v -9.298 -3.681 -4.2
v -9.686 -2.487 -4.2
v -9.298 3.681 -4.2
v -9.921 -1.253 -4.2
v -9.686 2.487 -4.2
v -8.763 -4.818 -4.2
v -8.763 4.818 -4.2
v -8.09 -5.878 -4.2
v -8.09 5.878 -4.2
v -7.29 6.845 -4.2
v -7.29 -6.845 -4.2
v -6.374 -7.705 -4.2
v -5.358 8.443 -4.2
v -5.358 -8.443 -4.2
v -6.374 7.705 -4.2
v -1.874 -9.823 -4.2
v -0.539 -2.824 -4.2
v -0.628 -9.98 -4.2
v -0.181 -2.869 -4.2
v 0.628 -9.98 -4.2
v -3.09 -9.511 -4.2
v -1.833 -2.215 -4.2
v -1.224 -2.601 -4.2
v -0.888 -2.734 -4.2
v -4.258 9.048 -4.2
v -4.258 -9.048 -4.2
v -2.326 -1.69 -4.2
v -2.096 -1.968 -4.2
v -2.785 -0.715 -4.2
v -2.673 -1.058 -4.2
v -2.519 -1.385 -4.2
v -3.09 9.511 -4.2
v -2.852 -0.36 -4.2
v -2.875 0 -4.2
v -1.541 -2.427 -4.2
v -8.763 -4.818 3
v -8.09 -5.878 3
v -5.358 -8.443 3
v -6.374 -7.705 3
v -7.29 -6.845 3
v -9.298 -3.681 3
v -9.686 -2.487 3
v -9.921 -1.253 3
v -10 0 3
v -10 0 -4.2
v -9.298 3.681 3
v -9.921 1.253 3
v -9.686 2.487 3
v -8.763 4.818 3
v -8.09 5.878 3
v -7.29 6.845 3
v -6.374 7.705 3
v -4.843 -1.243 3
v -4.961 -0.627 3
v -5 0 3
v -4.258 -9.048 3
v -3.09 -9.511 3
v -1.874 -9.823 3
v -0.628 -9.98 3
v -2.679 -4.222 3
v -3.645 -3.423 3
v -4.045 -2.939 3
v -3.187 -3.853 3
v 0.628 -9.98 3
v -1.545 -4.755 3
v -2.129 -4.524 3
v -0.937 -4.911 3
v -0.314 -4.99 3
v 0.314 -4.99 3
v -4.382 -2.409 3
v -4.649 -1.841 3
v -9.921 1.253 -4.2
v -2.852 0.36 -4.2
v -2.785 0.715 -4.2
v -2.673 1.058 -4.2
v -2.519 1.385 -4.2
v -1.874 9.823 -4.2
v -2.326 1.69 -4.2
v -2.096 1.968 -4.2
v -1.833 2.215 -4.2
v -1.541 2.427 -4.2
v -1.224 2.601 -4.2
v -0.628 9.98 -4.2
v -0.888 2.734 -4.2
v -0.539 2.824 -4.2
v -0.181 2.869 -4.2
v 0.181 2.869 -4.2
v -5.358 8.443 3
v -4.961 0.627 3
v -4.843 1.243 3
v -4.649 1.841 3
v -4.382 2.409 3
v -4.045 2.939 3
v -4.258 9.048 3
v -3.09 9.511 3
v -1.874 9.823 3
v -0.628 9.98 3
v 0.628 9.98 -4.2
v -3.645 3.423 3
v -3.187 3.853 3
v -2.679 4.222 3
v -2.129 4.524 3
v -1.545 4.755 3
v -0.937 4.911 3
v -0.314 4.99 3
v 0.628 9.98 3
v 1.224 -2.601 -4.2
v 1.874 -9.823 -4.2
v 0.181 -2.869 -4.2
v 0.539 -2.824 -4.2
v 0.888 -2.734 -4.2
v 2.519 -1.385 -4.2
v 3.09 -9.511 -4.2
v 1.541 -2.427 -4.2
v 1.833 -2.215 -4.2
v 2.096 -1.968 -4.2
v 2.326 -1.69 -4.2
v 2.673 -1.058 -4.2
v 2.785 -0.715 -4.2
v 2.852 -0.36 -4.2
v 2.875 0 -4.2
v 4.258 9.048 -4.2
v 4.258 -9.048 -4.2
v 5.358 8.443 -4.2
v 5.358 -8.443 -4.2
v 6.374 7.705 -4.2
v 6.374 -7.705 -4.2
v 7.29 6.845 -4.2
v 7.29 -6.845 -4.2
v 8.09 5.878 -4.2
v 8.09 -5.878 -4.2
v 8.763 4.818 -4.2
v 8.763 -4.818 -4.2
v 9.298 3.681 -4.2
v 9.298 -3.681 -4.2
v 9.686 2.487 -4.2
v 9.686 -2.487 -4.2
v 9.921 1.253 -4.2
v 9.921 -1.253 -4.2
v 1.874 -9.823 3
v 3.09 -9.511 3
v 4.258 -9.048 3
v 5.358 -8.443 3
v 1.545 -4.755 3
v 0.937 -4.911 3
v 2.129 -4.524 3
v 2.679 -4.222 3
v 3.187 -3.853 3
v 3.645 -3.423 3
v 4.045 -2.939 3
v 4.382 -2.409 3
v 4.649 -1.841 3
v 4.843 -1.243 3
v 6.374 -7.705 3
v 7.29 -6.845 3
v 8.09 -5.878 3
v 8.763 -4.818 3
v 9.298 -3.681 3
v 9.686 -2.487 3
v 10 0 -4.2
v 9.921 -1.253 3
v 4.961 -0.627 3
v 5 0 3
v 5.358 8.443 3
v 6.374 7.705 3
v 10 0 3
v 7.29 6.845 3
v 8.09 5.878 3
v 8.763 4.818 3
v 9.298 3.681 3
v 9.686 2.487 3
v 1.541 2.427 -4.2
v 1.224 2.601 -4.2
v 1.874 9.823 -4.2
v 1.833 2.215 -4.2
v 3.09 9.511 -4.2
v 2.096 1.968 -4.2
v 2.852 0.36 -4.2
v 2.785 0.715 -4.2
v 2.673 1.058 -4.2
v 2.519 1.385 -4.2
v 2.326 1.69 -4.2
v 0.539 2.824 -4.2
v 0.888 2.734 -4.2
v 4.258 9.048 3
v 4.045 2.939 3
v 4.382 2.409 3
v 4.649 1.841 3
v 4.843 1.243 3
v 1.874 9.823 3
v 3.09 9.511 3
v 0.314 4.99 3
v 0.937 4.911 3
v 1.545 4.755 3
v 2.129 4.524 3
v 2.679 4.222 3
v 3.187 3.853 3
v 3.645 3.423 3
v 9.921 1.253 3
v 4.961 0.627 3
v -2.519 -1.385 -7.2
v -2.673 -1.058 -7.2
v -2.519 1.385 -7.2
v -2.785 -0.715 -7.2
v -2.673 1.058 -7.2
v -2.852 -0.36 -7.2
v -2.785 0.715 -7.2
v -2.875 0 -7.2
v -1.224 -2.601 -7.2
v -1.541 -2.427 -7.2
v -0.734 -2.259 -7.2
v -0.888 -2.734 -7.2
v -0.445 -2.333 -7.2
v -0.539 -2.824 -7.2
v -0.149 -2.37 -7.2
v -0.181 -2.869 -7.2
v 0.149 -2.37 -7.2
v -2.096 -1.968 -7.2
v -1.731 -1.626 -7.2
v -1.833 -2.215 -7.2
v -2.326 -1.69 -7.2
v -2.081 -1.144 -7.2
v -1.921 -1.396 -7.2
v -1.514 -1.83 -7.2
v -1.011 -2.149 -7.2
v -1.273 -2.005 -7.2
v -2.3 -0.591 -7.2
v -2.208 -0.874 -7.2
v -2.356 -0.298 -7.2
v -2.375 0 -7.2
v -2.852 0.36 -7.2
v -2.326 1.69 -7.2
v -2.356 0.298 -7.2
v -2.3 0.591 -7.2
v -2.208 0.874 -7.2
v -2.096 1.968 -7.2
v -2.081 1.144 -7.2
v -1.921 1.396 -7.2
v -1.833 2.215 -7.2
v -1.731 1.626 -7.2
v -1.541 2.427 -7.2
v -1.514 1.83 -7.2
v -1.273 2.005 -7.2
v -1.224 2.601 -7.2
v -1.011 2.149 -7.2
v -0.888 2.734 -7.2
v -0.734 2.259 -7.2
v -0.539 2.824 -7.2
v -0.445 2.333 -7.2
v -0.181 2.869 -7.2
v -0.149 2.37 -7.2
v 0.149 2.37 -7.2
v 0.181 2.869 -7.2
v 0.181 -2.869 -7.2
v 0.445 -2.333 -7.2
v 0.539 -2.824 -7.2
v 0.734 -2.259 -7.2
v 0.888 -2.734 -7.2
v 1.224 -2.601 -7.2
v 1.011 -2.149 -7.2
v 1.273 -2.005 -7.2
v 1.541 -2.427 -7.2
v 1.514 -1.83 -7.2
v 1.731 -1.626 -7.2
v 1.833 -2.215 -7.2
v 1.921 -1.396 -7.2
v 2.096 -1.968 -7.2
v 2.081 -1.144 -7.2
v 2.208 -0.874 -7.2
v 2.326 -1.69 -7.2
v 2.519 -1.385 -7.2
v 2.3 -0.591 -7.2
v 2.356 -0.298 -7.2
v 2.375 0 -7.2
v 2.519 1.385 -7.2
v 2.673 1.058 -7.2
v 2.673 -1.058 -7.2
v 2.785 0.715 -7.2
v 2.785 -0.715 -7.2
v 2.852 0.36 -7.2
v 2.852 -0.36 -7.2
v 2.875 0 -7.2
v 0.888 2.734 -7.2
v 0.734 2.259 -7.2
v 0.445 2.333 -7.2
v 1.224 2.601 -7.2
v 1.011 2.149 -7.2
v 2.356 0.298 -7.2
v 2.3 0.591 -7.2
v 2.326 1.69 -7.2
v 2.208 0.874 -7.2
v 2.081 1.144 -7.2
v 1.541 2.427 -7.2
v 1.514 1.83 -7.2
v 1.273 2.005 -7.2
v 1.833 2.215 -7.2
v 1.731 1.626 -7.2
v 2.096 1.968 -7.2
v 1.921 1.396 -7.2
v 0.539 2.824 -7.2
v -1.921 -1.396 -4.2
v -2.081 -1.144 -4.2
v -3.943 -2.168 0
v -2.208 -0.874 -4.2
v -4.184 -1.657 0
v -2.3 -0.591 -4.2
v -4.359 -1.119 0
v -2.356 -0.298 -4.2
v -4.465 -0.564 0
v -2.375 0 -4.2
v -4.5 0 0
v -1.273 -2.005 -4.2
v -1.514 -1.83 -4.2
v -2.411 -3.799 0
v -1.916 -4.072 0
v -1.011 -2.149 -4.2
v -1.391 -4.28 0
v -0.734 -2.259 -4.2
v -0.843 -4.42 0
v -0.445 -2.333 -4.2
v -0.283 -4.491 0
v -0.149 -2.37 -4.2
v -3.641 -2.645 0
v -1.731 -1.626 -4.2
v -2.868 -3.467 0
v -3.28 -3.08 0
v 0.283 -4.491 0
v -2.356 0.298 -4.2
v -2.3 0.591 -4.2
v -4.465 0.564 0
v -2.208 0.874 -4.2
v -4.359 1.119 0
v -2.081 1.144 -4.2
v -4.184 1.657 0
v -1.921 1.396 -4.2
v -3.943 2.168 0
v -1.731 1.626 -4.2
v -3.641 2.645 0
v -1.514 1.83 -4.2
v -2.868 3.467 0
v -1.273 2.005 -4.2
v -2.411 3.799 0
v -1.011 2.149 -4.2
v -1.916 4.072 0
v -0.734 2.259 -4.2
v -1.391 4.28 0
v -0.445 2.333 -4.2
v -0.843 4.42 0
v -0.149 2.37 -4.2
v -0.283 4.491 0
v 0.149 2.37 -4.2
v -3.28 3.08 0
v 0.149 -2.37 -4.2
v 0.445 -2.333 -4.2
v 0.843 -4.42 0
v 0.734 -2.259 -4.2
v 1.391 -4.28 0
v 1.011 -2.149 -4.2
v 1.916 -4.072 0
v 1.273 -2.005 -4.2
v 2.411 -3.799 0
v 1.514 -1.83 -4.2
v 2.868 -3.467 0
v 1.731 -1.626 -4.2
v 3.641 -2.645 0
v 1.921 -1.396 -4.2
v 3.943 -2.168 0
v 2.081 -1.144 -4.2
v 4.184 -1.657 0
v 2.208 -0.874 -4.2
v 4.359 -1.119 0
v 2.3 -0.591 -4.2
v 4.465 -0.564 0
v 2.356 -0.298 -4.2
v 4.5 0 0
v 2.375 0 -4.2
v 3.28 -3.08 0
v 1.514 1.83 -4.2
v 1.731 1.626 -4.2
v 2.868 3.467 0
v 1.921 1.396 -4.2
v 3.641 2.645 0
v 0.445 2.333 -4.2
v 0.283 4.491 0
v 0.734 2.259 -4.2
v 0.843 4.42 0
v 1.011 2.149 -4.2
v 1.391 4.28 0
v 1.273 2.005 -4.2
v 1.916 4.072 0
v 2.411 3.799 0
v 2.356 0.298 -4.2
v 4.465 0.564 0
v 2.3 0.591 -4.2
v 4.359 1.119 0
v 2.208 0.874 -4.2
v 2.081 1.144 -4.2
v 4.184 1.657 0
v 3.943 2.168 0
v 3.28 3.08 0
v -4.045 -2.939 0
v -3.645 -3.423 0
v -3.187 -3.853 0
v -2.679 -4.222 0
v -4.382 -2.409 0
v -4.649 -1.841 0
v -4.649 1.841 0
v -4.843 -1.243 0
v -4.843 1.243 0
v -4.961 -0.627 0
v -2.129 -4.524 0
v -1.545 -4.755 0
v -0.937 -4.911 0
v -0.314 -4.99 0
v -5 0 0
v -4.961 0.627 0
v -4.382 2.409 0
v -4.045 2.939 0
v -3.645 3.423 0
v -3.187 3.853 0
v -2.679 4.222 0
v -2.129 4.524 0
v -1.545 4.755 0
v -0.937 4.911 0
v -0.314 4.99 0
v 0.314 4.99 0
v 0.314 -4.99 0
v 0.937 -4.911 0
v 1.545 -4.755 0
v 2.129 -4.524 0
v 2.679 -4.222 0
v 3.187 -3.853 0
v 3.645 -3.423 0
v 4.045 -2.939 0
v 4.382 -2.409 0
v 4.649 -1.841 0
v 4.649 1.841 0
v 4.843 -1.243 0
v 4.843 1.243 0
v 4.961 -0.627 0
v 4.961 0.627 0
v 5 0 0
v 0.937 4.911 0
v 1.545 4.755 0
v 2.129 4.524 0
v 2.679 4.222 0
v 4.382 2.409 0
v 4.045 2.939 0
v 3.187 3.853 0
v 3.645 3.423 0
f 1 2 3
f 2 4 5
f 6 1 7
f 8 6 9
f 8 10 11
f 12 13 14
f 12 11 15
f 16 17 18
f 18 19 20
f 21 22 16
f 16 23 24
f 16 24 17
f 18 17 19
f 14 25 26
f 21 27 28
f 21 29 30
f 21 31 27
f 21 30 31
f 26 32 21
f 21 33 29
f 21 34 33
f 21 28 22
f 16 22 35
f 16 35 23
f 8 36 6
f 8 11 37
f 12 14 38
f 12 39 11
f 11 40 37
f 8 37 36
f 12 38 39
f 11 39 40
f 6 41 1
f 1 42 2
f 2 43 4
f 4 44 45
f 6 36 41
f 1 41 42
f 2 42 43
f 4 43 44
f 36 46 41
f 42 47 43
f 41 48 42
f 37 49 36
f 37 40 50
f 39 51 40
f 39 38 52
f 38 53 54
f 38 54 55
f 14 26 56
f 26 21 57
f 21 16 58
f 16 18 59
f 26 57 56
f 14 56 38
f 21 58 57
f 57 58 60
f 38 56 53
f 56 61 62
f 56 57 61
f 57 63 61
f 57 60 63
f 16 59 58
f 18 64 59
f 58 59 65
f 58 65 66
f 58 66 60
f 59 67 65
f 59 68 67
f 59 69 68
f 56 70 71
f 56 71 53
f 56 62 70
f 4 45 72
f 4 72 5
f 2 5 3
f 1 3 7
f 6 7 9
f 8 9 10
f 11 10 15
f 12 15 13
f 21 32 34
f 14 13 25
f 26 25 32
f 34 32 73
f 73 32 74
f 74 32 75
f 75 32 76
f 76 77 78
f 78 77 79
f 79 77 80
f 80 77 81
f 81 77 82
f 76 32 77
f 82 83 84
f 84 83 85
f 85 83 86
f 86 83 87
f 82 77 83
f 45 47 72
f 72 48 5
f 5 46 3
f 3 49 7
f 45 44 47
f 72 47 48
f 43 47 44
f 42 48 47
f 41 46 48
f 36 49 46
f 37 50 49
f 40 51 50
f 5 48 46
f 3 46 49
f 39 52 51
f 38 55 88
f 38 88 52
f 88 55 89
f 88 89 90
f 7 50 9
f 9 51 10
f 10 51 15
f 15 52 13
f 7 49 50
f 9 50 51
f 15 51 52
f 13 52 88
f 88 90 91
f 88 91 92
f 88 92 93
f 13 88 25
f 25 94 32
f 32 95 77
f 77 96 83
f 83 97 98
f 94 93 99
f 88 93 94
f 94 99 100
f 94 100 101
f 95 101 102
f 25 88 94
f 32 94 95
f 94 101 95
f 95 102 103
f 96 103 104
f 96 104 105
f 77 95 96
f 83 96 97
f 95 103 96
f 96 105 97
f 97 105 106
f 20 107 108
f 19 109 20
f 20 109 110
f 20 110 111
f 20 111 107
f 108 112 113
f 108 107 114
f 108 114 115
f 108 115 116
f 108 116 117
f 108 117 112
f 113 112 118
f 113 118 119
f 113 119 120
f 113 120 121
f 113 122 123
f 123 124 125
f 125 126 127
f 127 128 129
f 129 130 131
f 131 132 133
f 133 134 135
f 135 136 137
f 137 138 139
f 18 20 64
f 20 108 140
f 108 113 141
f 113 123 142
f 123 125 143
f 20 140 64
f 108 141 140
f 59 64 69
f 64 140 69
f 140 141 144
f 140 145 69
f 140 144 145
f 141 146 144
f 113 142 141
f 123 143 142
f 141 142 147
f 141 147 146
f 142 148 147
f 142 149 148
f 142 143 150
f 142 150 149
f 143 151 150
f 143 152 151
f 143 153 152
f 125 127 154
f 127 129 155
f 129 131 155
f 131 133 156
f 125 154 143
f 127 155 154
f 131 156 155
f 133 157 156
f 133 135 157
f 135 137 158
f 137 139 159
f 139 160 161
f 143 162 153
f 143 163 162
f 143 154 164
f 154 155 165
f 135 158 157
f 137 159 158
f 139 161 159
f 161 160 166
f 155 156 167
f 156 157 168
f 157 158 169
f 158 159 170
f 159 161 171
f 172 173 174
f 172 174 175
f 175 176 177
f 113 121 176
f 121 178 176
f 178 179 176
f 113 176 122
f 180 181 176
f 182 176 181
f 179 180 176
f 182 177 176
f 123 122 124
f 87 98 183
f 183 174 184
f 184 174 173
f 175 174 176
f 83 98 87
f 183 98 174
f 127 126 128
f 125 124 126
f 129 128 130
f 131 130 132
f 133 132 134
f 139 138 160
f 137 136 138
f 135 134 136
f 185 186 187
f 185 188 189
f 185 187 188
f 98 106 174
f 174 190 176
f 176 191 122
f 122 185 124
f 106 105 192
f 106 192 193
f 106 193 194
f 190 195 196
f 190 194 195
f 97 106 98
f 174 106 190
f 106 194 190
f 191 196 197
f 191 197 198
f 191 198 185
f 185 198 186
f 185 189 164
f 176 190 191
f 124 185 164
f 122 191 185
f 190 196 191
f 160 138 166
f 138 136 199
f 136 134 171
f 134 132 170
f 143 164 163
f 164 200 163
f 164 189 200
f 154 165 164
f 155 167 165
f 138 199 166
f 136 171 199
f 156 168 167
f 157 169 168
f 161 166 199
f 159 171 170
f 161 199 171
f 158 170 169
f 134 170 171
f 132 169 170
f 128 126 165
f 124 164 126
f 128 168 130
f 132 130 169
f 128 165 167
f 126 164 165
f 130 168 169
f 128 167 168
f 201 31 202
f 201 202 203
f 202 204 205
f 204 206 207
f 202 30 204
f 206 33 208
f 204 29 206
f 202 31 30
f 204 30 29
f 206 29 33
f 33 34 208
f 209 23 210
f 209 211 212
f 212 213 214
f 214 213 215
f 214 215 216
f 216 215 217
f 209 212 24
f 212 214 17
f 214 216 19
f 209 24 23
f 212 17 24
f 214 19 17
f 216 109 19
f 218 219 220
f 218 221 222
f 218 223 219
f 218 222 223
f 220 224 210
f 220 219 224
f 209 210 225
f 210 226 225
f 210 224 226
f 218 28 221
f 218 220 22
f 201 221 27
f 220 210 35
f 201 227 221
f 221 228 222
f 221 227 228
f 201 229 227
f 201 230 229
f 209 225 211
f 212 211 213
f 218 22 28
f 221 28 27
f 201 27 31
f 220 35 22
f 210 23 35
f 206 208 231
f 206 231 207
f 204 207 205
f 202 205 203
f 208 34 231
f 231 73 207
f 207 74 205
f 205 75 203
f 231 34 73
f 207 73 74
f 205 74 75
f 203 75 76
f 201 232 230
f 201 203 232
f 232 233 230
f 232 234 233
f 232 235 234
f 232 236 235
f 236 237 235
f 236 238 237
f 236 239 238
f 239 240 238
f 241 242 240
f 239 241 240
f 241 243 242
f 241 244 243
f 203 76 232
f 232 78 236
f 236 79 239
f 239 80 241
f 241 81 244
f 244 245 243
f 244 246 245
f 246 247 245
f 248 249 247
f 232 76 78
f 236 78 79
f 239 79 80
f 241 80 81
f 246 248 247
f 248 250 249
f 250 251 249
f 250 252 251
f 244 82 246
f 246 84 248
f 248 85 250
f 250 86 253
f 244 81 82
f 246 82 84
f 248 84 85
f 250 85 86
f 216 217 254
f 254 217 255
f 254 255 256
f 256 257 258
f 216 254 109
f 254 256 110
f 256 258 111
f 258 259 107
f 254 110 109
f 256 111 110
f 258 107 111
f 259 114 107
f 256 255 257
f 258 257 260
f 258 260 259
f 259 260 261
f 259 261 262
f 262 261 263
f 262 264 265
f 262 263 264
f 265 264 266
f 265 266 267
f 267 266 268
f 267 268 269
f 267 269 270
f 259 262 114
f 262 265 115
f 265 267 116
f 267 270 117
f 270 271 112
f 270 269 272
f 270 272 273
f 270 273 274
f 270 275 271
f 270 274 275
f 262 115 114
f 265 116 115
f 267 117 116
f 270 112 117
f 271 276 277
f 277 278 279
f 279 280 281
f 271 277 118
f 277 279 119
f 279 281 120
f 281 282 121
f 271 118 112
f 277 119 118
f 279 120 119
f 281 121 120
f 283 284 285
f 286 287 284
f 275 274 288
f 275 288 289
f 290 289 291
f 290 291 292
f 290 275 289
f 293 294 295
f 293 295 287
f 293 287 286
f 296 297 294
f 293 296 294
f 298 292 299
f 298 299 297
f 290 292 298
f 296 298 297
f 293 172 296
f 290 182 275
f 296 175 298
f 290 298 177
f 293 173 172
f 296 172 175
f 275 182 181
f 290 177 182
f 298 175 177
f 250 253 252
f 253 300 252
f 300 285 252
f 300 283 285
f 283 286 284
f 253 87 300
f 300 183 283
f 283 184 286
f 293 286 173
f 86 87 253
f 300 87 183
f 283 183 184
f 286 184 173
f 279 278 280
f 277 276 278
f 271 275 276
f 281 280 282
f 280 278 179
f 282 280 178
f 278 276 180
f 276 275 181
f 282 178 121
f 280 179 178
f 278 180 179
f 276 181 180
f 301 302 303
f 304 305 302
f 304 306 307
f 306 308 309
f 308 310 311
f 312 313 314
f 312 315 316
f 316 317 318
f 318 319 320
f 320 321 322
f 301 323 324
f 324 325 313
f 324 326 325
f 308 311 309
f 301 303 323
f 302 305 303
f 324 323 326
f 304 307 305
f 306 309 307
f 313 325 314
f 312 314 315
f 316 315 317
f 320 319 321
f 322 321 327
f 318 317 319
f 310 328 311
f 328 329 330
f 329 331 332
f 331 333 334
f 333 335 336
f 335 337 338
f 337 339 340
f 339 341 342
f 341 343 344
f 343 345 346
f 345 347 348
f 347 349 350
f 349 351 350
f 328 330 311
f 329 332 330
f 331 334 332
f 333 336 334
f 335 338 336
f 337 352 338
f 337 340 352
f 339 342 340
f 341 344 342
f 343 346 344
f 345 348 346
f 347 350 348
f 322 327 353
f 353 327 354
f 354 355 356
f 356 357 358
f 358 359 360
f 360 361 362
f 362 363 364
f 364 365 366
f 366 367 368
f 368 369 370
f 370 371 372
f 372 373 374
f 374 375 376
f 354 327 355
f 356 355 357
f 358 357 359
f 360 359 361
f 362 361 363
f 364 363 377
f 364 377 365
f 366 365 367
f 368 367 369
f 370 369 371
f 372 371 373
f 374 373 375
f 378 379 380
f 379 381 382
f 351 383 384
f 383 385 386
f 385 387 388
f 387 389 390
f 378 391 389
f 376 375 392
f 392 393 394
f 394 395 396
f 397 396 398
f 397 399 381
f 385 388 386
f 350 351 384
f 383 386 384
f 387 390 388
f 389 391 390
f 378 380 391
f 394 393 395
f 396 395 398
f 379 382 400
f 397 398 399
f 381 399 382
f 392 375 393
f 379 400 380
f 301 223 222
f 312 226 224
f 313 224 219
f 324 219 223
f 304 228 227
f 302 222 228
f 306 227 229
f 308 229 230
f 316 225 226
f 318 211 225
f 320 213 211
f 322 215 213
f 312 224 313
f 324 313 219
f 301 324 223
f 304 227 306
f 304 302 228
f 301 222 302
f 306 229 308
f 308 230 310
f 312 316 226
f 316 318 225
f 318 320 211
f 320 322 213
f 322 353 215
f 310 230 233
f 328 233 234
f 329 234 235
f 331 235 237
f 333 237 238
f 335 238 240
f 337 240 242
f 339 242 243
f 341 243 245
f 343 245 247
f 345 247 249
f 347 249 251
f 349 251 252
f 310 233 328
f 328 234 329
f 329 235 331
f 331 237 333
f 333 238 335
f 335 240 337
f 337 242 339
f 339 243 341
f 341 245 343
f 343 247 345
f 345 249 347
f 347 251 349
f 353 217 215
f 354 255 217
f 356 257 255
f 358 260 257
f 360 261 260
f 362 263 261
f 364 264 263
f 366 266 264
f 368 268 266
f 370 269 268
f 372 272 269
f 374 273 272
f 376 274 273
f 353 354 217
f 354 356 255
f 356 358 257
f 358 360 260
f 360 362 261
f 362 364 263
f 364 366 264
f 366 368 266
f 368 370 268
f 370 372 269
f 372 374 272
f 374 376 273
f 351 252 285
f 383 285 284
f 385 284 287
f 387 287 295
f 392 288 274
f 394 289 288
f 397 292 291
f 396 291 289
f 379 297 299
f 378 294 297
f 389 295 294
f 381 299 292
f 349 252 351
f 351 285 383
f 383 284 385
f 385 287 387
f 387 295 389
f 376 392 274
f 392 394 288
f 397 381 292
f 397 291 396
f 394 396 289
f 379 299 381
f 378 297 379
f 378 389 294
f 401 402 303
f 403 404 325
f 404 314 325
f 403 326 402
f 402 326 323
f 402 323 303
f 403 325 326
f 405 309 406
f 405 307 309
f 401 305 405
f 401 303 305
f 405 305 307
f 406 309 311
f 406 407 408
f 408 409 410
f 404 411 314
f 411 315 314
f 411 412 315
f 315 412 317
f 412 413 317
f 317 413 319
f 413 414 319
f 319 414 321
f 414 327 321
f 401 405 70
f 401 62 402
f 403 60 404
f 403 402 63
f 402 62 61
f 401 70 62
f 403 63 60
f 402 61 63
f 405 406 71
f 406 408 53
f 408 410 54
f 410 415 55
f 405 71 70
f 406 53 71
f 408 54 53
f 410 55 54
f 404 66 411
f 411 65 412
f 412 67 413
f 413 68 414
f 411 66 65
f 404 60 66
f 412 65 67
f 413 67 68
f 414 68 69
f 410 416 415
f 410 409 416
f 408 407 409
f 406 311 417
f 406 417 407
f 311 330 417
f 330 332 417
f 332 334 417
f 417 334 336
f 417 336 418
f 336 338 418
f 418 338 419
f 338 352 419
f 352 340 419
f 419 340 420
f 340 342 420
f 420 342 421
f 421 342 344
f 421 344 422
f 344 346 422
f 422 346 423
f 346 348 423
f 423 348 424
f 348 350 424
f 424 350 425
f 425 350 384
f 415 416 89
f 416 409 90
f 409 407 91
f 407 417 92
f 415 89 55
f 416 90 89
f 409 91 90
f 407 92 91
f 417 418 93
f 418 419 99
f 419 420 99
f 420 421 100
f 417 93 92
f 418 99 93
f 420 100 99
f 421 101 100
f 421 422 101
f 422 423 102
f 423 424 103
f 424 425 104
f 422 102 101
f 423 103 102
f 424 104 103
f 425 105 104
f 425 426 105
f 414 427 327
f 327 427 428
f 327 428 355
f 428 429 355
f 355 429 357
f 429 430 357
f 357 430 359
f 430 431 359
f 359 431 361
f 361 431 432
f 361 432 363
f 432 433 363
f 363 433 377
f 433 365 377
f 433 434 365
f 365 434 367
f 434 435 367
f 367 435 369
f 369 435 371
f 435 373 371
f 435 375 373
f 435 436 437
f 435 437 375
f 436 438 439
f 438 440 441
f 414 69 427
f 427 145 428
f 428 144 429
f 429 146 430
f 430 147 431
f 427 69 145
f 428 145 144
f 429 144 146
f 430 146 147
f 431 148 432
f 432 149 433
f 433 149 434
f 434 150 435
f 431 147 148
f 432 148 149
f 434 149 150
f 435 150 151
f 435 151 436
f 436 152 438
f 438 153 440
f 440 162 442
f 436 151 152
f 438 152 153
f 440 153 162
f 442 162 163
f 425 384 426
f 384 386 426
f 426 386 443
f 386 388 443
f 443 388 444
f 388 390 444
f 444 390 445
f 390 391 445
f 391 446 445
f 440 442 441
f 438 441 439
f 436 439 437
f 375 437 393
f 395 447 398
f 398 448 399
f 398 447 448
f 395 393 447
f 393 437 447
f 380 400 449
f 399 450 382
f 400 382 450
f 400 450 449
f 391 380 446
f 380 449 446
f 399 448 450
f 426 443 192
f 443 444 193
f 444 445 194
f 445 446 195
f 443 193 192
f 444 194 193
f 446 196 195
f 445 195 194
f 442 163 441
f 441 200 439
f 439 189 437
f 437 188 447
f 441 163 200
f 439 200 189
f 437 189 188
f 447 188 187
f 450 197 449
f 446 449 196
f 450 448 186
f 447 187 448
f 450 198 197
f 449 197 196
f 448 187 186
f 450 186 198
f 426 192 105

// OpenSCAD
$fn = 50;

difference() {
	union() {
		translate(v = [0, 0, -4.2]) {
			cylinder(h = 7.2, r = 10.0);
		}
		#translate(v = [0, 0, -7.2]) {
			cylinder(h = 7.2, r = 2.875);
		}
	}
	union() {
		translate(v = [0, 0, 0]) {
			rotate(a = [0, 0, 0]) {
				difference() {
					union() {
						translate(v = [0, 0, -7.2]) {
							cylinder(h = 7.2, r = 2.25);
						}
						translate(v = [0, 0, -4.2]) {
							cylinder(h = 4.2, r1 = 2.375, r2 = 4.5);
						}
						translate(v = [0, 0, -7.2]) {
							cylinder(h = 7.2, r = 2.375);
						}
						translate(v = [0, 0, -7.2]) {
							cylinder(h = 7.2, r = 2.25);
						}
					}
					union();
				}
			}
		}
		#cylinder(h = 3, r = 5.0);
	}
}
